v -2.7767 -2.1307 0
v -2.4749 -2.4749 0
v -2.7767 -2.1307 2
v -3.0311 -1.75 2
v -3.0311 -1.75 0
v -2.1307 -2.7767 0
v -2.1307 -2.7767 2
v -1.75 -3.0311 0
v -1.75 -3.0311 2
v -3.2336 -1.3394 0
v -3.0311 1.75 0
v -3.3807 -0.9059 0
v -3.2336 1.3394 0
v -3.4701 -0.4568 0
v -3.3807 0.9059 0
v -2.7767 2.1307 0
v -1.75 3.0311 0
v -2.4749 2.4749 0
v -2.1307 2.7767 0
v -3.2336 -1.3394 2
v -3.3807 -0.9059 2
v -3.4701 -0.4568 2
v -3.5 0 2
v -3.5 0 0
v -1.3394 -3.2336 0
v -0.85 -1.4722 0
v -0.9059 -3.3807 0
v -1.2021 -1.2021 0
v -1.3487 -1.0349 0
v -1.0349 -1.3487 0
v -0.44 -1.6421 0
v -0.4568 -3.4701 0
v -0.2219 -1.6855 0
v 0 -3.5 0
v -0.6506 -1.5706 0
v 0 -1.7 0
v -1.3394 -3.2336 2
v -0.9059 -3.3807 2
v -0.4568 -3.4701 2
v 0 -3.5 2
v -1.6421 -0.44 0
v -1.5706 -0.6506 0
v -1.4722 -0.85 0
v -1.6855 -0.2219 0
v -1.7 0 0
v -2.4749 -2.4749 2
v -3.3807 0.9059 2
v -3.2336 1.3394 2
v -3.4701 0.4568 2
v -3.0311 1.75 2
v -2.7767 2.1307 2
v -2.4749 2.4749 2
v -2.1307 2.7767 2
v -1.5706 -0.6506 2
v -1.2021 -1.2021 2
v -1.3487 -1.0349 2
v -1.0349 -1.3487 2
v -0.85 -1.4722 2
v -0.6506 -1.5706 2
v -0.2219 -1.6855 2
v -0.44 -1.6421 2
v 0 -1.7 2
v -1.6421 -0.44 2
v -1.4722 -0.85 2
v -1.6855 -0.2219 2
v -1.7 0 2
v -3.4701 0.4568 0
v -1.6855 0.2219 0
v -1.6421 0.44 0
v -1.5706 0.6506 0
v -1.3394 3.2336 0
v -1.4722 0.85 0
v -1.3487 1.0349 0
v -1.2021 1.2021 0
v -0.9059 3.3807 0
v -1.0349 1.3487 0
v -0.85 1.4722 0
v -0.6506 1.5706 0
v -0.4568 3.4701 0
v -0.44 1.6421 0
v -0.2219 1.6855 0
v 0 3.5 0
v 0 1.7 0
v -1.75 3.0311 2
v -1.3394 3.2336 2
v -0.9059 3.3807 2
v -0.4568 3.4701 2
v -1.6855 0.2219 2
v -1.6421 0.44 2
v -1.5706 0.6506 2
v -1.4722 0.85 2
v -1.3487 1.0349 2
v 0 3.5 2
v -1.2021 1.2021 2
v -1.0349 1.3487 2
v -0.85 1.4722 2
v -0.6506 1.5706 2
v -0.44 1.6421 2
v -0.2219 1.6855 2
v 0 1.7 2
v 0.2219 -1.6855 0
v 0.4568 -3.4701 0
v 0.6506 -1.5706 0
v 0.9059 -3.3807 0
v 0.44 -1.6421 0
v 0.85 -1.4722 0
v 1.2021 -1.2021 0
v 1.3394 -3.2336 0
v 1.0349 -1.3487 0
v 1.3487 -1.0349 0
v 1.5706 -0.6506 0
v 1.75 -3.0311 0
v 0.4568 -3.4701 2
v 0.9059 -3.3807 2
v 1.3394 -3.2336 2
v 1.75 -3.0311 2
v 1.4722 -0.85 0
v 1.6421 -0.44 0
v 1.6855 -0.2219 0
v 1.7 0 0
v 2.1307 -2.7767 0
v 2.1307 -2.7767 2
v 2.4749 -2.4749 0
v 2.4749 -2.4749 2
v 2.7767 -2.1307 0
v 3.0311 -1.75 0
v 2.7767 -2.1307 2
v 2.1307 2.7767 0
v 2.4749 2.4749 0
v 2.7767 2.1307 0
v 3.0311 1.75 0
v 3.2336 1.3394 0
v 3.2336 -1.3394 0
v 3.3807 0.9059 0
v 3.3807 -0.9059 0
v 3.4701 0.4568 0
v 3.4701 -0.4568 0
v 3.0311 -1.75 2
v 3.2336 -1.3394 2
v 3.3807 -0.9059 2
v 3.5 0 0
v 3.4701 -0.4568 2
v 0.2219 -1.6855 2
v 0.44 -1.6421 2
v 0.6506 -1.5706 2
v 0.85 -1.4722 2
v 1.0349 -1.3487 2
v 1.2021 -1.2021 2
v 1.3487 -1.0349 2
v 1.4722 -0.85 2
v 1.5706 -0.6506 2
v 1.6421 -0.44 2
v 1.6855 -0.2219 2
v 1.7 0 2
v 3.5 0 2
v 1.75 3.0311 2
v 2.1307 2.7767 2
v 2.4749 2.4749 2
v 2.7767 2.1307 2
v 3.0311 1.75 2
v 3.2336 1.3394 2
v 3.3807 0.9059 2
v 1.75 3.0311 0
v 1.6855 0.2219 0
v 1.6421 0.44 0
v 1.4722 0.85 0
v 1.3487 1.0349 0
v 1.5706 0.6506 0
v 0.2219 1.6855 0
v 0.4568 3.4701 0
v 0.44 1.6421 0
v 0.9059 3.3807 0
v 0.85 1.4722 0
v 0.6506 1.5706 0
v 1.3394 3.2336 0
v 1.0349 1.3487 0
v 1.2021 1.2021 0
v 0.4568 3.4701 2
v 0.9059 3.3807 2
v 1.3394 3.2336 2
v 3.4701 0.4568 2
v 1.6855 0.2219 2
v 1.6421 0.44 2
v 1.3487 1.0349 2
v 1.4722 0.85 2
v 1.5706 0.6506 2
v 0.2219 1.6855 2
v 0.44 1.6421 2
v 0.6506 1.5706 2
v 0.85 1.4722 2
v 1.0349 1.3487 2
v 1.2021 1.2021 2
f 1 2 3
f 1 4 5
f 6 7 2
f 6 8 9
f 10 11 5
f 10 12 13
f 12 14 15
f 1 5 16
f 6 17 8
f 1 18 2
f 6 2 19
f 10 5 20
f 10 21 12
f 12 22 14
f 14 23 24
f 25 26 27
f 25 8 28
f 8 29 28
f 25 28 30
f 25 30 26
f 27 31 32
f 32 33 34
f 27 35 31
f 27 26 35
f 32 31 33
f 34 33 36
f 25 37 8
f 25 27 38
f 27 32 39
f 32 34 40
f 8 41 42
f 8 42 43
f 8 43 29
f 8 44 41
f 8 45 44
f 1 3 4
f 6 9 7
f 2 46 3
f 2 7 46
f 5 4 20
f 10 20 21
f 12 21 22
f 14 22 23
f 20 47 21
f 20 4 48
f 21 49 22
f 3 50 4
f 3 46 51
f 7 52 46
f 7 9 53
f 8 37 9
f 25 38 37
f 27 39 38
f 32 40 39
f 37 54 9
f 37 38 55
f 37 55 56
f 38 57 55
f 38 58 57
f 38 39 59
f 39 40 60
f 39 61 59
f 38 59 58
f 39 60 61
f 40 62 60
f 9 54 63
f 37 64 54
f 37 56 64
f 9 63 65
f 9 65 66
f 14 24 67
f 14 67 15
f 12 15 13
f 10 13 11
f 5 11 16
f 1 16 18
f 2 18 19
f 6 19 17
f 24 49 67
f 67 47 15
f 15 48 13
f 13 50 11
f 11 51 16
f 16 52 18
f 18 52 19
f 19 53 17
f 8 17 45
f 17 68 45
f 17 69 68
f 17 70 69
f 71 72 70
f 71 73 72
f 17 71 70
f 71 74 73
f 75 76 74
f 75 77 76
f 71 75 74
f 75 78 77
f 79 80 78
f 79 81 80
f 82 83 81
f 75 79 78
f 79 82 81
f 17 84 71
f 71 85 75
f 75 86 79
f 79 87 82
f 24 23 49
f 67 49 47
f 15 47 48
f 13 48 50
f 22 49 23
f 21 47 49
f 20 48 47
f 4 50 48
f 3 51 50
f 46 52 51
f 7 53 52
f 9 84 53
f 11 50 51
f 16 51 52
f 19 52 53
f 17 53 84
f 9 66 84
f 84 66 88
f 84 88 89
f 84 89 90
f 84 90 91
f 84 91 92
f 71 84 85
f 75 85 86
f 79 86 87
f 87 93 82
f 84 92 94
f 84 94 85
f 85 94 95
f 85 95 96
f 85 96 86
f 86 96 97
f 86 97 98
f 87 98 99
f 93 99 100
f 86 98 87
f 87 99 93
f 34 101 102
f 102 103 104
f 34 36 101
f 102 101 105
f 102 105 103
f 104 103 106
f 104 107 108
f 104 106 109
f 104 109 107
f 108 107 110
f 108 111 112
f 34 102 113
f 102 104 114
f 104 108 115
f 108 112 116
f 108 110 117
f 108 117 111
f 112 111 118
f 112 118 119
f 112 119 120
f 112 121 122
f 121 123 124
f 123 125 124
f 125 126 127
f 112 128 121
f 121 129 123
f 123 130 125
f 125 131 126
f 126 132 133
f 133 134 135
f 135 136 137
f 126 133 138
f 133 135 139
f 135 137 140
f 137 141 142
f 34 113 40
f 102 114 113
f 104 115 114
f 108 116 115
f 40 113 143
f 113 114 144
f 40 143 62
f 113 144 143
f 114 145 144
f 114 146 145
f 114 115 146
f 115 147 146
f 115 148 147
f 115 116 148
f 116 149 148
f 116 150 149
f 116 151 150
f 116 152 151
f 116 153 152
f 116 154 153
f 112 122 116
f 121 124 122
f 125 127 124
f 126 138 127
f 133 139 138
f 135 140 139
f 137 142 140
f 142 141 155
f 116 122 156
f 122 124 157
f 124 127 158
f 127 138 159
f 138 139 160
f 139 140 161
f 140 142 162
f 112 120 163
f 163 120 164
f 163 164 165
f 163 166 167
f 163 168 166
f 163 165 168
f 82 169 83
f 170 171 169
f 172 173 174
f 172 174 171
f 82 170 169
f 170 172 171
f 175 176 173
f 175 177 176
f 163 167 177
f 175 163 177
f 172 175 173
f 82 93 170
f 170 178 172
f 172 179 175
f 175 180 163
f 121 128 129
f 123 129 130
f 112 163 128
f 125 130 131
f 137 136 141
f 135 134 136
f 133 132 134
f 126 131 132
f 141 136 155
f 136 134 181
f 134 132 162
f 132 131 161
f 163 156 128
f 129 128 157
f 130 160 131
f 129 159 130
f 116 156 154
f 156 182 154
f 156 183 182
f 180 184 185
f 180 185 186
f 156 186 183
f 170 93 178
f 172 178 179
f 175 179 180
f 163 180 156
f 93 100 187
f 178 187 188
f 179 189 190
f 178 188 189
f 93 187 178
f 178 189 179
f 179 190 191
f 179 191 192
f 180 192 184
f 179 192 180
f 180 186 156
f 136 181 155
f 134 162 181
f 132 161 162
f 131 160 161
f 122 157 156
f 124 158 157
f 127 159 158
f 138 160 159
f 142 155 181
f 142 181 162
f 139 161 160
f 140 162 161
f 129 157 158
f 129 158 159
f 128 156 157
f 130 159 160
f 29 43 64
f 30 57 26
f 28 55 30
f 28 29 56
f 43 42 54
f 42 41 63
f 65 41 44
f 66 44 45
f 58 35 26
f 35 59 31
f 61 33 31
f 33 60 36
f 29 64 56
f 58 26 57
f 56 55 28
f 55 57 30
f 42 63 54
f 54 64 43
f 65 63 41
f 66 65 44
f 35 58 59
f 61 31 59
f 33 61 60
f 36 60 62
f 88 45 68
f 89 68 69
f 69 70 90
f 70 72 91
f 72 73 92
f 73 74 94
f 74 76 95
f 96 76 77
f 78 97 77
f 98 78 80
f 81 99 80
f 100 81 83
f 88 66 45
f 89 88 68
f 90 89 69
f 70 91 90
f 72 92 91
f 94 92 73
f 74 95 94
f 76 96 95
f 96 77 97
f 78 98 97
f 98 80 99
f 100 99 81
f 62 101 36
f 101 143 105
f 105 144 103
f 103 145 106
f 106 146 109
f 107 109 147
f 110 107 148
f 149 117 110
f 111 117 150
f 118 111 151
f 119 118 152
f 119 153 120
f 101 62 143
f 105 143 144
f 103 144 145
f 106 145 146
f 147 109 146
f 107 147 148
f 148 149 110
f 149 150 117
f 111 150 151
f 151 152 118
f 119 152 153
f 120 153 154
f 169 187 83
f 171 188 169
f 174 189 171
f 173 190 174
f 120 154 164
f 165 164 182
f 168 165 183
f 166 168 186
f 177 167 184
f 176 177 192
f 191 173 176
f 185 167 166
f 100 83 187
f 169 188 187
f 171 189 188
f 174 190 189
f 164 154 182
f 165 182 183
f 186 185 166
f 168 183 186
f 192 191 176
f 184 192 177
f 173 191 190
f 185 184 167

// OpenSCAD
// Print one M3 spacer per needed joint; tune height after real stackup.
include <parameters.scad>
$fn = 48;
assert(stage2_spacer_outer_d > stage2_pivot_hole_d + 2);

module spacer() {
    difference() {
        cylinder(d = stage2_spacer_outer_d, h = stage2_spacer_height);
        translate([0,0,-0.1])
            cylinder(d = stage2_pivot_hole_d, h = stage2_spacer_height + 0.2);
    }
}

spacer();
